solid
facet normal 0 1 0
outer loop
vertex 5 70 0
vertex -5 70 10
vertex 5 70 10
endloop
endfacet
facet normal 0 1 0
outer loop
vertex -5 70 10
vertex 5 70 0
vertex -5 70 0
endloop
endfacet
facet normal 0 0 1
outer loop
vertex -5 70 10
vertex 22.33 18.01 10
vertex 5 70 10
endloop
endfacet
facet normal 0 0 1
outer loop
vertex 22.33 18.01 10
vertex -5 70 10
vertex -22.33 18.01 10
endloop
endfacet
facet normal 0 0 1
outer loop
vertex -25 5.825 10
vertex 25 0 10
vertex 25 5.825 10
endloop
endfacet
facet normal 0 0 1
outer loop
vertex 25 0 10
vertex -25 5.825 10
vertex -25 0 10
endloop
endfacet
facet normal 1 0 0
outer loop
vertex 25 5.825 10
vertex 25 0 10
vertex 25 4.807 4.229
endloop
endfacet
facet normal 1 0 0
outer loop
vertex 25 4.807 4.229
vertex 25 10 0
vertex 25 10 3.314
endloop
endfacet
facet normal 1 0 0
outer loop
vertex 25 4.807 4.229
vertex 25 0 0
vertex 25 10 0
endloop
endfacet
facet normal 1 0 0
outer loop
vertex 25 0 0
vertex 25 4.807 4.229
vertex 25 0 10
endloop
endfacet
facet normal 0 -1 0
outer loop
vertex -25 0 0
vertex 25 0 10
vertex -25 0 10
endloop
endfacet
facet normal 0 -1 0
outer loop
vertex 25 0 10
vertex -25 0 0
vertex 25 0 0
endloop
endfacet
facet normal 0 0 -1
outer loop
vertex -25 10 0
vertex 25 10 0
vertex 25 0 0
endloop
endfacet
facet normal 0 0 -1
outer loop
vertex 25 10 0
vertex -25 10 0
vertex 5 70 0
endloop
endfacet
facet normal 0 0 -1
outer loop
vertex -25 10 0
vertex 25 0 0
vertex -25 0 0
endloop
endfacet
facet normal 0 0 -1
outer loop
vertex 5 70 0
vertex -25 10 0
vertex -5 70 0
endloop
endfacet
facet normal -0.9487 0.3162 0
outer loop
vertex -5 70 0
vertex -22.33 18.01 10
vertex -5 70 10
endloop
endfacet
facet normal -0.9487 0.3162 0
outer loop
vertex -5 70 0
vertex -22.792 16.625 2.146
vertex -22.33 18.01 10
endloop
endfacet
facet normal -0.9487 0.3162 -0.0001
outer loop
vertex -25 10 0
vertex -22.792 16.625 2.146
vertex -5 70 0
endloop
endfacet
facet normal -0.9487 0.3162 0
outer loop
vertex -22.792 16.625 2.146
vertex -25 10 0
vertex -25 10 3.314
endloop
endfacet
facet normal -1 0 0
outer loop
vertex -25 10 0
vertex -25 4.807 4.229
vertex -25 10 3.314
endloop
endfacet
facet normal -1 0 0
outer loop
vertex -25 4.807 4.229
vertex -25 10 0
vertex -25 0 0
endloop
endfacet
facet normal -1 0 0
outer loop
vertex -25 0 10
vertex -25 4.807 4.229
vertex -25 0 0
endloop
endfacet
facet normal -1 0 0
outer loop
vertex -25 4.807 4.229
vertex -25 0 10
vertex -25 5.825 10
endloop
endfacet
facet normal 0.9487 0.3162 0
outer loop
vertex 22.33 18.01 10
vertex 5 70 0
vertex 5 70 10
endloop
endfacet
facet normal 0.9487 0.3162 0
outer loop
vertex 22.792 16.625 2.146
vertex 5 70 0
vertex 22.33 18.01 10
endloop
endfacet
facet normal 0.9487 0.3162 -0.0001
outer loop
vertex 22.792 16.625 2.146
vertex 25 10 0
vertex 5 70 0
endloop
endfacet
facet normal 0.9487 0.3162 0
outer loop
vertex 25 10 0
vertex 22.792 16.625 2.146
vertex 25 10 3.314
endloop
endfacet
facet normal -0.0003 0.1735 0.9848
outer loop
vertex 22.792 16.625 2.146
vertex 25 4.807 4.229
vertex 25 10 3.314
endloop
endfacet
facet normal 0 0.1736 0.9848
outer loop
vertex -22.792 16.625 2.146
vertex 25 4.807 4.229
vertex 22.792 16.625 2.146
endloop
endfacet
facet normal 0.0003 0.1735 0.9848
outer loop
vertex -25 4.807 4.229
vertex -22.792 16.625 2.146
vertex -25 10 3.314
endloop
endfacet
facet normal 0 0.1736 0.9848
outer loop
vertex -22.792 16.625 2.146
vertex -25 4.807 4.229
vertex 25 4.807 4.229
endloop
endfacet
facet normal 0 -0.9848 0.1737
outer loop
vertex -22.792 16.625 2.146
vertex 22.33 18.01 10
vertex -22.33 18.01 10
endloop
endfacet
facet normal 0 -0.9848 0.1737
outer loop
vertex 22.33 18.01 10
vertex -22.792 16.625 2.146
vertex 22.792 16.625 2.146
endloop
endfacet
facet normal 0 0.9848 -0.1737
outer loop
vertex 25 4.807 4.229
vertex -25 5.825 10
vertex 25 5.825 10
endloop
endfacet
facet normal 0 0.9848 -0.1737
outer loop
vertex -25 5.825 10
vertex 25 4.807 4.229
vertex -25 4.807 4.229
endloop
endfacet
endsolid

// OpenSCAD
difference() {
    linear_extrude(height=10) polygon(points=[[-25,0],[+25,0],[25,10],[5,70],[-5,70],[-25,10]]);
    rotate([-10, 0, 0]) translate([0, 10, 55]) cube([100, 12, 100], center=true);
}
